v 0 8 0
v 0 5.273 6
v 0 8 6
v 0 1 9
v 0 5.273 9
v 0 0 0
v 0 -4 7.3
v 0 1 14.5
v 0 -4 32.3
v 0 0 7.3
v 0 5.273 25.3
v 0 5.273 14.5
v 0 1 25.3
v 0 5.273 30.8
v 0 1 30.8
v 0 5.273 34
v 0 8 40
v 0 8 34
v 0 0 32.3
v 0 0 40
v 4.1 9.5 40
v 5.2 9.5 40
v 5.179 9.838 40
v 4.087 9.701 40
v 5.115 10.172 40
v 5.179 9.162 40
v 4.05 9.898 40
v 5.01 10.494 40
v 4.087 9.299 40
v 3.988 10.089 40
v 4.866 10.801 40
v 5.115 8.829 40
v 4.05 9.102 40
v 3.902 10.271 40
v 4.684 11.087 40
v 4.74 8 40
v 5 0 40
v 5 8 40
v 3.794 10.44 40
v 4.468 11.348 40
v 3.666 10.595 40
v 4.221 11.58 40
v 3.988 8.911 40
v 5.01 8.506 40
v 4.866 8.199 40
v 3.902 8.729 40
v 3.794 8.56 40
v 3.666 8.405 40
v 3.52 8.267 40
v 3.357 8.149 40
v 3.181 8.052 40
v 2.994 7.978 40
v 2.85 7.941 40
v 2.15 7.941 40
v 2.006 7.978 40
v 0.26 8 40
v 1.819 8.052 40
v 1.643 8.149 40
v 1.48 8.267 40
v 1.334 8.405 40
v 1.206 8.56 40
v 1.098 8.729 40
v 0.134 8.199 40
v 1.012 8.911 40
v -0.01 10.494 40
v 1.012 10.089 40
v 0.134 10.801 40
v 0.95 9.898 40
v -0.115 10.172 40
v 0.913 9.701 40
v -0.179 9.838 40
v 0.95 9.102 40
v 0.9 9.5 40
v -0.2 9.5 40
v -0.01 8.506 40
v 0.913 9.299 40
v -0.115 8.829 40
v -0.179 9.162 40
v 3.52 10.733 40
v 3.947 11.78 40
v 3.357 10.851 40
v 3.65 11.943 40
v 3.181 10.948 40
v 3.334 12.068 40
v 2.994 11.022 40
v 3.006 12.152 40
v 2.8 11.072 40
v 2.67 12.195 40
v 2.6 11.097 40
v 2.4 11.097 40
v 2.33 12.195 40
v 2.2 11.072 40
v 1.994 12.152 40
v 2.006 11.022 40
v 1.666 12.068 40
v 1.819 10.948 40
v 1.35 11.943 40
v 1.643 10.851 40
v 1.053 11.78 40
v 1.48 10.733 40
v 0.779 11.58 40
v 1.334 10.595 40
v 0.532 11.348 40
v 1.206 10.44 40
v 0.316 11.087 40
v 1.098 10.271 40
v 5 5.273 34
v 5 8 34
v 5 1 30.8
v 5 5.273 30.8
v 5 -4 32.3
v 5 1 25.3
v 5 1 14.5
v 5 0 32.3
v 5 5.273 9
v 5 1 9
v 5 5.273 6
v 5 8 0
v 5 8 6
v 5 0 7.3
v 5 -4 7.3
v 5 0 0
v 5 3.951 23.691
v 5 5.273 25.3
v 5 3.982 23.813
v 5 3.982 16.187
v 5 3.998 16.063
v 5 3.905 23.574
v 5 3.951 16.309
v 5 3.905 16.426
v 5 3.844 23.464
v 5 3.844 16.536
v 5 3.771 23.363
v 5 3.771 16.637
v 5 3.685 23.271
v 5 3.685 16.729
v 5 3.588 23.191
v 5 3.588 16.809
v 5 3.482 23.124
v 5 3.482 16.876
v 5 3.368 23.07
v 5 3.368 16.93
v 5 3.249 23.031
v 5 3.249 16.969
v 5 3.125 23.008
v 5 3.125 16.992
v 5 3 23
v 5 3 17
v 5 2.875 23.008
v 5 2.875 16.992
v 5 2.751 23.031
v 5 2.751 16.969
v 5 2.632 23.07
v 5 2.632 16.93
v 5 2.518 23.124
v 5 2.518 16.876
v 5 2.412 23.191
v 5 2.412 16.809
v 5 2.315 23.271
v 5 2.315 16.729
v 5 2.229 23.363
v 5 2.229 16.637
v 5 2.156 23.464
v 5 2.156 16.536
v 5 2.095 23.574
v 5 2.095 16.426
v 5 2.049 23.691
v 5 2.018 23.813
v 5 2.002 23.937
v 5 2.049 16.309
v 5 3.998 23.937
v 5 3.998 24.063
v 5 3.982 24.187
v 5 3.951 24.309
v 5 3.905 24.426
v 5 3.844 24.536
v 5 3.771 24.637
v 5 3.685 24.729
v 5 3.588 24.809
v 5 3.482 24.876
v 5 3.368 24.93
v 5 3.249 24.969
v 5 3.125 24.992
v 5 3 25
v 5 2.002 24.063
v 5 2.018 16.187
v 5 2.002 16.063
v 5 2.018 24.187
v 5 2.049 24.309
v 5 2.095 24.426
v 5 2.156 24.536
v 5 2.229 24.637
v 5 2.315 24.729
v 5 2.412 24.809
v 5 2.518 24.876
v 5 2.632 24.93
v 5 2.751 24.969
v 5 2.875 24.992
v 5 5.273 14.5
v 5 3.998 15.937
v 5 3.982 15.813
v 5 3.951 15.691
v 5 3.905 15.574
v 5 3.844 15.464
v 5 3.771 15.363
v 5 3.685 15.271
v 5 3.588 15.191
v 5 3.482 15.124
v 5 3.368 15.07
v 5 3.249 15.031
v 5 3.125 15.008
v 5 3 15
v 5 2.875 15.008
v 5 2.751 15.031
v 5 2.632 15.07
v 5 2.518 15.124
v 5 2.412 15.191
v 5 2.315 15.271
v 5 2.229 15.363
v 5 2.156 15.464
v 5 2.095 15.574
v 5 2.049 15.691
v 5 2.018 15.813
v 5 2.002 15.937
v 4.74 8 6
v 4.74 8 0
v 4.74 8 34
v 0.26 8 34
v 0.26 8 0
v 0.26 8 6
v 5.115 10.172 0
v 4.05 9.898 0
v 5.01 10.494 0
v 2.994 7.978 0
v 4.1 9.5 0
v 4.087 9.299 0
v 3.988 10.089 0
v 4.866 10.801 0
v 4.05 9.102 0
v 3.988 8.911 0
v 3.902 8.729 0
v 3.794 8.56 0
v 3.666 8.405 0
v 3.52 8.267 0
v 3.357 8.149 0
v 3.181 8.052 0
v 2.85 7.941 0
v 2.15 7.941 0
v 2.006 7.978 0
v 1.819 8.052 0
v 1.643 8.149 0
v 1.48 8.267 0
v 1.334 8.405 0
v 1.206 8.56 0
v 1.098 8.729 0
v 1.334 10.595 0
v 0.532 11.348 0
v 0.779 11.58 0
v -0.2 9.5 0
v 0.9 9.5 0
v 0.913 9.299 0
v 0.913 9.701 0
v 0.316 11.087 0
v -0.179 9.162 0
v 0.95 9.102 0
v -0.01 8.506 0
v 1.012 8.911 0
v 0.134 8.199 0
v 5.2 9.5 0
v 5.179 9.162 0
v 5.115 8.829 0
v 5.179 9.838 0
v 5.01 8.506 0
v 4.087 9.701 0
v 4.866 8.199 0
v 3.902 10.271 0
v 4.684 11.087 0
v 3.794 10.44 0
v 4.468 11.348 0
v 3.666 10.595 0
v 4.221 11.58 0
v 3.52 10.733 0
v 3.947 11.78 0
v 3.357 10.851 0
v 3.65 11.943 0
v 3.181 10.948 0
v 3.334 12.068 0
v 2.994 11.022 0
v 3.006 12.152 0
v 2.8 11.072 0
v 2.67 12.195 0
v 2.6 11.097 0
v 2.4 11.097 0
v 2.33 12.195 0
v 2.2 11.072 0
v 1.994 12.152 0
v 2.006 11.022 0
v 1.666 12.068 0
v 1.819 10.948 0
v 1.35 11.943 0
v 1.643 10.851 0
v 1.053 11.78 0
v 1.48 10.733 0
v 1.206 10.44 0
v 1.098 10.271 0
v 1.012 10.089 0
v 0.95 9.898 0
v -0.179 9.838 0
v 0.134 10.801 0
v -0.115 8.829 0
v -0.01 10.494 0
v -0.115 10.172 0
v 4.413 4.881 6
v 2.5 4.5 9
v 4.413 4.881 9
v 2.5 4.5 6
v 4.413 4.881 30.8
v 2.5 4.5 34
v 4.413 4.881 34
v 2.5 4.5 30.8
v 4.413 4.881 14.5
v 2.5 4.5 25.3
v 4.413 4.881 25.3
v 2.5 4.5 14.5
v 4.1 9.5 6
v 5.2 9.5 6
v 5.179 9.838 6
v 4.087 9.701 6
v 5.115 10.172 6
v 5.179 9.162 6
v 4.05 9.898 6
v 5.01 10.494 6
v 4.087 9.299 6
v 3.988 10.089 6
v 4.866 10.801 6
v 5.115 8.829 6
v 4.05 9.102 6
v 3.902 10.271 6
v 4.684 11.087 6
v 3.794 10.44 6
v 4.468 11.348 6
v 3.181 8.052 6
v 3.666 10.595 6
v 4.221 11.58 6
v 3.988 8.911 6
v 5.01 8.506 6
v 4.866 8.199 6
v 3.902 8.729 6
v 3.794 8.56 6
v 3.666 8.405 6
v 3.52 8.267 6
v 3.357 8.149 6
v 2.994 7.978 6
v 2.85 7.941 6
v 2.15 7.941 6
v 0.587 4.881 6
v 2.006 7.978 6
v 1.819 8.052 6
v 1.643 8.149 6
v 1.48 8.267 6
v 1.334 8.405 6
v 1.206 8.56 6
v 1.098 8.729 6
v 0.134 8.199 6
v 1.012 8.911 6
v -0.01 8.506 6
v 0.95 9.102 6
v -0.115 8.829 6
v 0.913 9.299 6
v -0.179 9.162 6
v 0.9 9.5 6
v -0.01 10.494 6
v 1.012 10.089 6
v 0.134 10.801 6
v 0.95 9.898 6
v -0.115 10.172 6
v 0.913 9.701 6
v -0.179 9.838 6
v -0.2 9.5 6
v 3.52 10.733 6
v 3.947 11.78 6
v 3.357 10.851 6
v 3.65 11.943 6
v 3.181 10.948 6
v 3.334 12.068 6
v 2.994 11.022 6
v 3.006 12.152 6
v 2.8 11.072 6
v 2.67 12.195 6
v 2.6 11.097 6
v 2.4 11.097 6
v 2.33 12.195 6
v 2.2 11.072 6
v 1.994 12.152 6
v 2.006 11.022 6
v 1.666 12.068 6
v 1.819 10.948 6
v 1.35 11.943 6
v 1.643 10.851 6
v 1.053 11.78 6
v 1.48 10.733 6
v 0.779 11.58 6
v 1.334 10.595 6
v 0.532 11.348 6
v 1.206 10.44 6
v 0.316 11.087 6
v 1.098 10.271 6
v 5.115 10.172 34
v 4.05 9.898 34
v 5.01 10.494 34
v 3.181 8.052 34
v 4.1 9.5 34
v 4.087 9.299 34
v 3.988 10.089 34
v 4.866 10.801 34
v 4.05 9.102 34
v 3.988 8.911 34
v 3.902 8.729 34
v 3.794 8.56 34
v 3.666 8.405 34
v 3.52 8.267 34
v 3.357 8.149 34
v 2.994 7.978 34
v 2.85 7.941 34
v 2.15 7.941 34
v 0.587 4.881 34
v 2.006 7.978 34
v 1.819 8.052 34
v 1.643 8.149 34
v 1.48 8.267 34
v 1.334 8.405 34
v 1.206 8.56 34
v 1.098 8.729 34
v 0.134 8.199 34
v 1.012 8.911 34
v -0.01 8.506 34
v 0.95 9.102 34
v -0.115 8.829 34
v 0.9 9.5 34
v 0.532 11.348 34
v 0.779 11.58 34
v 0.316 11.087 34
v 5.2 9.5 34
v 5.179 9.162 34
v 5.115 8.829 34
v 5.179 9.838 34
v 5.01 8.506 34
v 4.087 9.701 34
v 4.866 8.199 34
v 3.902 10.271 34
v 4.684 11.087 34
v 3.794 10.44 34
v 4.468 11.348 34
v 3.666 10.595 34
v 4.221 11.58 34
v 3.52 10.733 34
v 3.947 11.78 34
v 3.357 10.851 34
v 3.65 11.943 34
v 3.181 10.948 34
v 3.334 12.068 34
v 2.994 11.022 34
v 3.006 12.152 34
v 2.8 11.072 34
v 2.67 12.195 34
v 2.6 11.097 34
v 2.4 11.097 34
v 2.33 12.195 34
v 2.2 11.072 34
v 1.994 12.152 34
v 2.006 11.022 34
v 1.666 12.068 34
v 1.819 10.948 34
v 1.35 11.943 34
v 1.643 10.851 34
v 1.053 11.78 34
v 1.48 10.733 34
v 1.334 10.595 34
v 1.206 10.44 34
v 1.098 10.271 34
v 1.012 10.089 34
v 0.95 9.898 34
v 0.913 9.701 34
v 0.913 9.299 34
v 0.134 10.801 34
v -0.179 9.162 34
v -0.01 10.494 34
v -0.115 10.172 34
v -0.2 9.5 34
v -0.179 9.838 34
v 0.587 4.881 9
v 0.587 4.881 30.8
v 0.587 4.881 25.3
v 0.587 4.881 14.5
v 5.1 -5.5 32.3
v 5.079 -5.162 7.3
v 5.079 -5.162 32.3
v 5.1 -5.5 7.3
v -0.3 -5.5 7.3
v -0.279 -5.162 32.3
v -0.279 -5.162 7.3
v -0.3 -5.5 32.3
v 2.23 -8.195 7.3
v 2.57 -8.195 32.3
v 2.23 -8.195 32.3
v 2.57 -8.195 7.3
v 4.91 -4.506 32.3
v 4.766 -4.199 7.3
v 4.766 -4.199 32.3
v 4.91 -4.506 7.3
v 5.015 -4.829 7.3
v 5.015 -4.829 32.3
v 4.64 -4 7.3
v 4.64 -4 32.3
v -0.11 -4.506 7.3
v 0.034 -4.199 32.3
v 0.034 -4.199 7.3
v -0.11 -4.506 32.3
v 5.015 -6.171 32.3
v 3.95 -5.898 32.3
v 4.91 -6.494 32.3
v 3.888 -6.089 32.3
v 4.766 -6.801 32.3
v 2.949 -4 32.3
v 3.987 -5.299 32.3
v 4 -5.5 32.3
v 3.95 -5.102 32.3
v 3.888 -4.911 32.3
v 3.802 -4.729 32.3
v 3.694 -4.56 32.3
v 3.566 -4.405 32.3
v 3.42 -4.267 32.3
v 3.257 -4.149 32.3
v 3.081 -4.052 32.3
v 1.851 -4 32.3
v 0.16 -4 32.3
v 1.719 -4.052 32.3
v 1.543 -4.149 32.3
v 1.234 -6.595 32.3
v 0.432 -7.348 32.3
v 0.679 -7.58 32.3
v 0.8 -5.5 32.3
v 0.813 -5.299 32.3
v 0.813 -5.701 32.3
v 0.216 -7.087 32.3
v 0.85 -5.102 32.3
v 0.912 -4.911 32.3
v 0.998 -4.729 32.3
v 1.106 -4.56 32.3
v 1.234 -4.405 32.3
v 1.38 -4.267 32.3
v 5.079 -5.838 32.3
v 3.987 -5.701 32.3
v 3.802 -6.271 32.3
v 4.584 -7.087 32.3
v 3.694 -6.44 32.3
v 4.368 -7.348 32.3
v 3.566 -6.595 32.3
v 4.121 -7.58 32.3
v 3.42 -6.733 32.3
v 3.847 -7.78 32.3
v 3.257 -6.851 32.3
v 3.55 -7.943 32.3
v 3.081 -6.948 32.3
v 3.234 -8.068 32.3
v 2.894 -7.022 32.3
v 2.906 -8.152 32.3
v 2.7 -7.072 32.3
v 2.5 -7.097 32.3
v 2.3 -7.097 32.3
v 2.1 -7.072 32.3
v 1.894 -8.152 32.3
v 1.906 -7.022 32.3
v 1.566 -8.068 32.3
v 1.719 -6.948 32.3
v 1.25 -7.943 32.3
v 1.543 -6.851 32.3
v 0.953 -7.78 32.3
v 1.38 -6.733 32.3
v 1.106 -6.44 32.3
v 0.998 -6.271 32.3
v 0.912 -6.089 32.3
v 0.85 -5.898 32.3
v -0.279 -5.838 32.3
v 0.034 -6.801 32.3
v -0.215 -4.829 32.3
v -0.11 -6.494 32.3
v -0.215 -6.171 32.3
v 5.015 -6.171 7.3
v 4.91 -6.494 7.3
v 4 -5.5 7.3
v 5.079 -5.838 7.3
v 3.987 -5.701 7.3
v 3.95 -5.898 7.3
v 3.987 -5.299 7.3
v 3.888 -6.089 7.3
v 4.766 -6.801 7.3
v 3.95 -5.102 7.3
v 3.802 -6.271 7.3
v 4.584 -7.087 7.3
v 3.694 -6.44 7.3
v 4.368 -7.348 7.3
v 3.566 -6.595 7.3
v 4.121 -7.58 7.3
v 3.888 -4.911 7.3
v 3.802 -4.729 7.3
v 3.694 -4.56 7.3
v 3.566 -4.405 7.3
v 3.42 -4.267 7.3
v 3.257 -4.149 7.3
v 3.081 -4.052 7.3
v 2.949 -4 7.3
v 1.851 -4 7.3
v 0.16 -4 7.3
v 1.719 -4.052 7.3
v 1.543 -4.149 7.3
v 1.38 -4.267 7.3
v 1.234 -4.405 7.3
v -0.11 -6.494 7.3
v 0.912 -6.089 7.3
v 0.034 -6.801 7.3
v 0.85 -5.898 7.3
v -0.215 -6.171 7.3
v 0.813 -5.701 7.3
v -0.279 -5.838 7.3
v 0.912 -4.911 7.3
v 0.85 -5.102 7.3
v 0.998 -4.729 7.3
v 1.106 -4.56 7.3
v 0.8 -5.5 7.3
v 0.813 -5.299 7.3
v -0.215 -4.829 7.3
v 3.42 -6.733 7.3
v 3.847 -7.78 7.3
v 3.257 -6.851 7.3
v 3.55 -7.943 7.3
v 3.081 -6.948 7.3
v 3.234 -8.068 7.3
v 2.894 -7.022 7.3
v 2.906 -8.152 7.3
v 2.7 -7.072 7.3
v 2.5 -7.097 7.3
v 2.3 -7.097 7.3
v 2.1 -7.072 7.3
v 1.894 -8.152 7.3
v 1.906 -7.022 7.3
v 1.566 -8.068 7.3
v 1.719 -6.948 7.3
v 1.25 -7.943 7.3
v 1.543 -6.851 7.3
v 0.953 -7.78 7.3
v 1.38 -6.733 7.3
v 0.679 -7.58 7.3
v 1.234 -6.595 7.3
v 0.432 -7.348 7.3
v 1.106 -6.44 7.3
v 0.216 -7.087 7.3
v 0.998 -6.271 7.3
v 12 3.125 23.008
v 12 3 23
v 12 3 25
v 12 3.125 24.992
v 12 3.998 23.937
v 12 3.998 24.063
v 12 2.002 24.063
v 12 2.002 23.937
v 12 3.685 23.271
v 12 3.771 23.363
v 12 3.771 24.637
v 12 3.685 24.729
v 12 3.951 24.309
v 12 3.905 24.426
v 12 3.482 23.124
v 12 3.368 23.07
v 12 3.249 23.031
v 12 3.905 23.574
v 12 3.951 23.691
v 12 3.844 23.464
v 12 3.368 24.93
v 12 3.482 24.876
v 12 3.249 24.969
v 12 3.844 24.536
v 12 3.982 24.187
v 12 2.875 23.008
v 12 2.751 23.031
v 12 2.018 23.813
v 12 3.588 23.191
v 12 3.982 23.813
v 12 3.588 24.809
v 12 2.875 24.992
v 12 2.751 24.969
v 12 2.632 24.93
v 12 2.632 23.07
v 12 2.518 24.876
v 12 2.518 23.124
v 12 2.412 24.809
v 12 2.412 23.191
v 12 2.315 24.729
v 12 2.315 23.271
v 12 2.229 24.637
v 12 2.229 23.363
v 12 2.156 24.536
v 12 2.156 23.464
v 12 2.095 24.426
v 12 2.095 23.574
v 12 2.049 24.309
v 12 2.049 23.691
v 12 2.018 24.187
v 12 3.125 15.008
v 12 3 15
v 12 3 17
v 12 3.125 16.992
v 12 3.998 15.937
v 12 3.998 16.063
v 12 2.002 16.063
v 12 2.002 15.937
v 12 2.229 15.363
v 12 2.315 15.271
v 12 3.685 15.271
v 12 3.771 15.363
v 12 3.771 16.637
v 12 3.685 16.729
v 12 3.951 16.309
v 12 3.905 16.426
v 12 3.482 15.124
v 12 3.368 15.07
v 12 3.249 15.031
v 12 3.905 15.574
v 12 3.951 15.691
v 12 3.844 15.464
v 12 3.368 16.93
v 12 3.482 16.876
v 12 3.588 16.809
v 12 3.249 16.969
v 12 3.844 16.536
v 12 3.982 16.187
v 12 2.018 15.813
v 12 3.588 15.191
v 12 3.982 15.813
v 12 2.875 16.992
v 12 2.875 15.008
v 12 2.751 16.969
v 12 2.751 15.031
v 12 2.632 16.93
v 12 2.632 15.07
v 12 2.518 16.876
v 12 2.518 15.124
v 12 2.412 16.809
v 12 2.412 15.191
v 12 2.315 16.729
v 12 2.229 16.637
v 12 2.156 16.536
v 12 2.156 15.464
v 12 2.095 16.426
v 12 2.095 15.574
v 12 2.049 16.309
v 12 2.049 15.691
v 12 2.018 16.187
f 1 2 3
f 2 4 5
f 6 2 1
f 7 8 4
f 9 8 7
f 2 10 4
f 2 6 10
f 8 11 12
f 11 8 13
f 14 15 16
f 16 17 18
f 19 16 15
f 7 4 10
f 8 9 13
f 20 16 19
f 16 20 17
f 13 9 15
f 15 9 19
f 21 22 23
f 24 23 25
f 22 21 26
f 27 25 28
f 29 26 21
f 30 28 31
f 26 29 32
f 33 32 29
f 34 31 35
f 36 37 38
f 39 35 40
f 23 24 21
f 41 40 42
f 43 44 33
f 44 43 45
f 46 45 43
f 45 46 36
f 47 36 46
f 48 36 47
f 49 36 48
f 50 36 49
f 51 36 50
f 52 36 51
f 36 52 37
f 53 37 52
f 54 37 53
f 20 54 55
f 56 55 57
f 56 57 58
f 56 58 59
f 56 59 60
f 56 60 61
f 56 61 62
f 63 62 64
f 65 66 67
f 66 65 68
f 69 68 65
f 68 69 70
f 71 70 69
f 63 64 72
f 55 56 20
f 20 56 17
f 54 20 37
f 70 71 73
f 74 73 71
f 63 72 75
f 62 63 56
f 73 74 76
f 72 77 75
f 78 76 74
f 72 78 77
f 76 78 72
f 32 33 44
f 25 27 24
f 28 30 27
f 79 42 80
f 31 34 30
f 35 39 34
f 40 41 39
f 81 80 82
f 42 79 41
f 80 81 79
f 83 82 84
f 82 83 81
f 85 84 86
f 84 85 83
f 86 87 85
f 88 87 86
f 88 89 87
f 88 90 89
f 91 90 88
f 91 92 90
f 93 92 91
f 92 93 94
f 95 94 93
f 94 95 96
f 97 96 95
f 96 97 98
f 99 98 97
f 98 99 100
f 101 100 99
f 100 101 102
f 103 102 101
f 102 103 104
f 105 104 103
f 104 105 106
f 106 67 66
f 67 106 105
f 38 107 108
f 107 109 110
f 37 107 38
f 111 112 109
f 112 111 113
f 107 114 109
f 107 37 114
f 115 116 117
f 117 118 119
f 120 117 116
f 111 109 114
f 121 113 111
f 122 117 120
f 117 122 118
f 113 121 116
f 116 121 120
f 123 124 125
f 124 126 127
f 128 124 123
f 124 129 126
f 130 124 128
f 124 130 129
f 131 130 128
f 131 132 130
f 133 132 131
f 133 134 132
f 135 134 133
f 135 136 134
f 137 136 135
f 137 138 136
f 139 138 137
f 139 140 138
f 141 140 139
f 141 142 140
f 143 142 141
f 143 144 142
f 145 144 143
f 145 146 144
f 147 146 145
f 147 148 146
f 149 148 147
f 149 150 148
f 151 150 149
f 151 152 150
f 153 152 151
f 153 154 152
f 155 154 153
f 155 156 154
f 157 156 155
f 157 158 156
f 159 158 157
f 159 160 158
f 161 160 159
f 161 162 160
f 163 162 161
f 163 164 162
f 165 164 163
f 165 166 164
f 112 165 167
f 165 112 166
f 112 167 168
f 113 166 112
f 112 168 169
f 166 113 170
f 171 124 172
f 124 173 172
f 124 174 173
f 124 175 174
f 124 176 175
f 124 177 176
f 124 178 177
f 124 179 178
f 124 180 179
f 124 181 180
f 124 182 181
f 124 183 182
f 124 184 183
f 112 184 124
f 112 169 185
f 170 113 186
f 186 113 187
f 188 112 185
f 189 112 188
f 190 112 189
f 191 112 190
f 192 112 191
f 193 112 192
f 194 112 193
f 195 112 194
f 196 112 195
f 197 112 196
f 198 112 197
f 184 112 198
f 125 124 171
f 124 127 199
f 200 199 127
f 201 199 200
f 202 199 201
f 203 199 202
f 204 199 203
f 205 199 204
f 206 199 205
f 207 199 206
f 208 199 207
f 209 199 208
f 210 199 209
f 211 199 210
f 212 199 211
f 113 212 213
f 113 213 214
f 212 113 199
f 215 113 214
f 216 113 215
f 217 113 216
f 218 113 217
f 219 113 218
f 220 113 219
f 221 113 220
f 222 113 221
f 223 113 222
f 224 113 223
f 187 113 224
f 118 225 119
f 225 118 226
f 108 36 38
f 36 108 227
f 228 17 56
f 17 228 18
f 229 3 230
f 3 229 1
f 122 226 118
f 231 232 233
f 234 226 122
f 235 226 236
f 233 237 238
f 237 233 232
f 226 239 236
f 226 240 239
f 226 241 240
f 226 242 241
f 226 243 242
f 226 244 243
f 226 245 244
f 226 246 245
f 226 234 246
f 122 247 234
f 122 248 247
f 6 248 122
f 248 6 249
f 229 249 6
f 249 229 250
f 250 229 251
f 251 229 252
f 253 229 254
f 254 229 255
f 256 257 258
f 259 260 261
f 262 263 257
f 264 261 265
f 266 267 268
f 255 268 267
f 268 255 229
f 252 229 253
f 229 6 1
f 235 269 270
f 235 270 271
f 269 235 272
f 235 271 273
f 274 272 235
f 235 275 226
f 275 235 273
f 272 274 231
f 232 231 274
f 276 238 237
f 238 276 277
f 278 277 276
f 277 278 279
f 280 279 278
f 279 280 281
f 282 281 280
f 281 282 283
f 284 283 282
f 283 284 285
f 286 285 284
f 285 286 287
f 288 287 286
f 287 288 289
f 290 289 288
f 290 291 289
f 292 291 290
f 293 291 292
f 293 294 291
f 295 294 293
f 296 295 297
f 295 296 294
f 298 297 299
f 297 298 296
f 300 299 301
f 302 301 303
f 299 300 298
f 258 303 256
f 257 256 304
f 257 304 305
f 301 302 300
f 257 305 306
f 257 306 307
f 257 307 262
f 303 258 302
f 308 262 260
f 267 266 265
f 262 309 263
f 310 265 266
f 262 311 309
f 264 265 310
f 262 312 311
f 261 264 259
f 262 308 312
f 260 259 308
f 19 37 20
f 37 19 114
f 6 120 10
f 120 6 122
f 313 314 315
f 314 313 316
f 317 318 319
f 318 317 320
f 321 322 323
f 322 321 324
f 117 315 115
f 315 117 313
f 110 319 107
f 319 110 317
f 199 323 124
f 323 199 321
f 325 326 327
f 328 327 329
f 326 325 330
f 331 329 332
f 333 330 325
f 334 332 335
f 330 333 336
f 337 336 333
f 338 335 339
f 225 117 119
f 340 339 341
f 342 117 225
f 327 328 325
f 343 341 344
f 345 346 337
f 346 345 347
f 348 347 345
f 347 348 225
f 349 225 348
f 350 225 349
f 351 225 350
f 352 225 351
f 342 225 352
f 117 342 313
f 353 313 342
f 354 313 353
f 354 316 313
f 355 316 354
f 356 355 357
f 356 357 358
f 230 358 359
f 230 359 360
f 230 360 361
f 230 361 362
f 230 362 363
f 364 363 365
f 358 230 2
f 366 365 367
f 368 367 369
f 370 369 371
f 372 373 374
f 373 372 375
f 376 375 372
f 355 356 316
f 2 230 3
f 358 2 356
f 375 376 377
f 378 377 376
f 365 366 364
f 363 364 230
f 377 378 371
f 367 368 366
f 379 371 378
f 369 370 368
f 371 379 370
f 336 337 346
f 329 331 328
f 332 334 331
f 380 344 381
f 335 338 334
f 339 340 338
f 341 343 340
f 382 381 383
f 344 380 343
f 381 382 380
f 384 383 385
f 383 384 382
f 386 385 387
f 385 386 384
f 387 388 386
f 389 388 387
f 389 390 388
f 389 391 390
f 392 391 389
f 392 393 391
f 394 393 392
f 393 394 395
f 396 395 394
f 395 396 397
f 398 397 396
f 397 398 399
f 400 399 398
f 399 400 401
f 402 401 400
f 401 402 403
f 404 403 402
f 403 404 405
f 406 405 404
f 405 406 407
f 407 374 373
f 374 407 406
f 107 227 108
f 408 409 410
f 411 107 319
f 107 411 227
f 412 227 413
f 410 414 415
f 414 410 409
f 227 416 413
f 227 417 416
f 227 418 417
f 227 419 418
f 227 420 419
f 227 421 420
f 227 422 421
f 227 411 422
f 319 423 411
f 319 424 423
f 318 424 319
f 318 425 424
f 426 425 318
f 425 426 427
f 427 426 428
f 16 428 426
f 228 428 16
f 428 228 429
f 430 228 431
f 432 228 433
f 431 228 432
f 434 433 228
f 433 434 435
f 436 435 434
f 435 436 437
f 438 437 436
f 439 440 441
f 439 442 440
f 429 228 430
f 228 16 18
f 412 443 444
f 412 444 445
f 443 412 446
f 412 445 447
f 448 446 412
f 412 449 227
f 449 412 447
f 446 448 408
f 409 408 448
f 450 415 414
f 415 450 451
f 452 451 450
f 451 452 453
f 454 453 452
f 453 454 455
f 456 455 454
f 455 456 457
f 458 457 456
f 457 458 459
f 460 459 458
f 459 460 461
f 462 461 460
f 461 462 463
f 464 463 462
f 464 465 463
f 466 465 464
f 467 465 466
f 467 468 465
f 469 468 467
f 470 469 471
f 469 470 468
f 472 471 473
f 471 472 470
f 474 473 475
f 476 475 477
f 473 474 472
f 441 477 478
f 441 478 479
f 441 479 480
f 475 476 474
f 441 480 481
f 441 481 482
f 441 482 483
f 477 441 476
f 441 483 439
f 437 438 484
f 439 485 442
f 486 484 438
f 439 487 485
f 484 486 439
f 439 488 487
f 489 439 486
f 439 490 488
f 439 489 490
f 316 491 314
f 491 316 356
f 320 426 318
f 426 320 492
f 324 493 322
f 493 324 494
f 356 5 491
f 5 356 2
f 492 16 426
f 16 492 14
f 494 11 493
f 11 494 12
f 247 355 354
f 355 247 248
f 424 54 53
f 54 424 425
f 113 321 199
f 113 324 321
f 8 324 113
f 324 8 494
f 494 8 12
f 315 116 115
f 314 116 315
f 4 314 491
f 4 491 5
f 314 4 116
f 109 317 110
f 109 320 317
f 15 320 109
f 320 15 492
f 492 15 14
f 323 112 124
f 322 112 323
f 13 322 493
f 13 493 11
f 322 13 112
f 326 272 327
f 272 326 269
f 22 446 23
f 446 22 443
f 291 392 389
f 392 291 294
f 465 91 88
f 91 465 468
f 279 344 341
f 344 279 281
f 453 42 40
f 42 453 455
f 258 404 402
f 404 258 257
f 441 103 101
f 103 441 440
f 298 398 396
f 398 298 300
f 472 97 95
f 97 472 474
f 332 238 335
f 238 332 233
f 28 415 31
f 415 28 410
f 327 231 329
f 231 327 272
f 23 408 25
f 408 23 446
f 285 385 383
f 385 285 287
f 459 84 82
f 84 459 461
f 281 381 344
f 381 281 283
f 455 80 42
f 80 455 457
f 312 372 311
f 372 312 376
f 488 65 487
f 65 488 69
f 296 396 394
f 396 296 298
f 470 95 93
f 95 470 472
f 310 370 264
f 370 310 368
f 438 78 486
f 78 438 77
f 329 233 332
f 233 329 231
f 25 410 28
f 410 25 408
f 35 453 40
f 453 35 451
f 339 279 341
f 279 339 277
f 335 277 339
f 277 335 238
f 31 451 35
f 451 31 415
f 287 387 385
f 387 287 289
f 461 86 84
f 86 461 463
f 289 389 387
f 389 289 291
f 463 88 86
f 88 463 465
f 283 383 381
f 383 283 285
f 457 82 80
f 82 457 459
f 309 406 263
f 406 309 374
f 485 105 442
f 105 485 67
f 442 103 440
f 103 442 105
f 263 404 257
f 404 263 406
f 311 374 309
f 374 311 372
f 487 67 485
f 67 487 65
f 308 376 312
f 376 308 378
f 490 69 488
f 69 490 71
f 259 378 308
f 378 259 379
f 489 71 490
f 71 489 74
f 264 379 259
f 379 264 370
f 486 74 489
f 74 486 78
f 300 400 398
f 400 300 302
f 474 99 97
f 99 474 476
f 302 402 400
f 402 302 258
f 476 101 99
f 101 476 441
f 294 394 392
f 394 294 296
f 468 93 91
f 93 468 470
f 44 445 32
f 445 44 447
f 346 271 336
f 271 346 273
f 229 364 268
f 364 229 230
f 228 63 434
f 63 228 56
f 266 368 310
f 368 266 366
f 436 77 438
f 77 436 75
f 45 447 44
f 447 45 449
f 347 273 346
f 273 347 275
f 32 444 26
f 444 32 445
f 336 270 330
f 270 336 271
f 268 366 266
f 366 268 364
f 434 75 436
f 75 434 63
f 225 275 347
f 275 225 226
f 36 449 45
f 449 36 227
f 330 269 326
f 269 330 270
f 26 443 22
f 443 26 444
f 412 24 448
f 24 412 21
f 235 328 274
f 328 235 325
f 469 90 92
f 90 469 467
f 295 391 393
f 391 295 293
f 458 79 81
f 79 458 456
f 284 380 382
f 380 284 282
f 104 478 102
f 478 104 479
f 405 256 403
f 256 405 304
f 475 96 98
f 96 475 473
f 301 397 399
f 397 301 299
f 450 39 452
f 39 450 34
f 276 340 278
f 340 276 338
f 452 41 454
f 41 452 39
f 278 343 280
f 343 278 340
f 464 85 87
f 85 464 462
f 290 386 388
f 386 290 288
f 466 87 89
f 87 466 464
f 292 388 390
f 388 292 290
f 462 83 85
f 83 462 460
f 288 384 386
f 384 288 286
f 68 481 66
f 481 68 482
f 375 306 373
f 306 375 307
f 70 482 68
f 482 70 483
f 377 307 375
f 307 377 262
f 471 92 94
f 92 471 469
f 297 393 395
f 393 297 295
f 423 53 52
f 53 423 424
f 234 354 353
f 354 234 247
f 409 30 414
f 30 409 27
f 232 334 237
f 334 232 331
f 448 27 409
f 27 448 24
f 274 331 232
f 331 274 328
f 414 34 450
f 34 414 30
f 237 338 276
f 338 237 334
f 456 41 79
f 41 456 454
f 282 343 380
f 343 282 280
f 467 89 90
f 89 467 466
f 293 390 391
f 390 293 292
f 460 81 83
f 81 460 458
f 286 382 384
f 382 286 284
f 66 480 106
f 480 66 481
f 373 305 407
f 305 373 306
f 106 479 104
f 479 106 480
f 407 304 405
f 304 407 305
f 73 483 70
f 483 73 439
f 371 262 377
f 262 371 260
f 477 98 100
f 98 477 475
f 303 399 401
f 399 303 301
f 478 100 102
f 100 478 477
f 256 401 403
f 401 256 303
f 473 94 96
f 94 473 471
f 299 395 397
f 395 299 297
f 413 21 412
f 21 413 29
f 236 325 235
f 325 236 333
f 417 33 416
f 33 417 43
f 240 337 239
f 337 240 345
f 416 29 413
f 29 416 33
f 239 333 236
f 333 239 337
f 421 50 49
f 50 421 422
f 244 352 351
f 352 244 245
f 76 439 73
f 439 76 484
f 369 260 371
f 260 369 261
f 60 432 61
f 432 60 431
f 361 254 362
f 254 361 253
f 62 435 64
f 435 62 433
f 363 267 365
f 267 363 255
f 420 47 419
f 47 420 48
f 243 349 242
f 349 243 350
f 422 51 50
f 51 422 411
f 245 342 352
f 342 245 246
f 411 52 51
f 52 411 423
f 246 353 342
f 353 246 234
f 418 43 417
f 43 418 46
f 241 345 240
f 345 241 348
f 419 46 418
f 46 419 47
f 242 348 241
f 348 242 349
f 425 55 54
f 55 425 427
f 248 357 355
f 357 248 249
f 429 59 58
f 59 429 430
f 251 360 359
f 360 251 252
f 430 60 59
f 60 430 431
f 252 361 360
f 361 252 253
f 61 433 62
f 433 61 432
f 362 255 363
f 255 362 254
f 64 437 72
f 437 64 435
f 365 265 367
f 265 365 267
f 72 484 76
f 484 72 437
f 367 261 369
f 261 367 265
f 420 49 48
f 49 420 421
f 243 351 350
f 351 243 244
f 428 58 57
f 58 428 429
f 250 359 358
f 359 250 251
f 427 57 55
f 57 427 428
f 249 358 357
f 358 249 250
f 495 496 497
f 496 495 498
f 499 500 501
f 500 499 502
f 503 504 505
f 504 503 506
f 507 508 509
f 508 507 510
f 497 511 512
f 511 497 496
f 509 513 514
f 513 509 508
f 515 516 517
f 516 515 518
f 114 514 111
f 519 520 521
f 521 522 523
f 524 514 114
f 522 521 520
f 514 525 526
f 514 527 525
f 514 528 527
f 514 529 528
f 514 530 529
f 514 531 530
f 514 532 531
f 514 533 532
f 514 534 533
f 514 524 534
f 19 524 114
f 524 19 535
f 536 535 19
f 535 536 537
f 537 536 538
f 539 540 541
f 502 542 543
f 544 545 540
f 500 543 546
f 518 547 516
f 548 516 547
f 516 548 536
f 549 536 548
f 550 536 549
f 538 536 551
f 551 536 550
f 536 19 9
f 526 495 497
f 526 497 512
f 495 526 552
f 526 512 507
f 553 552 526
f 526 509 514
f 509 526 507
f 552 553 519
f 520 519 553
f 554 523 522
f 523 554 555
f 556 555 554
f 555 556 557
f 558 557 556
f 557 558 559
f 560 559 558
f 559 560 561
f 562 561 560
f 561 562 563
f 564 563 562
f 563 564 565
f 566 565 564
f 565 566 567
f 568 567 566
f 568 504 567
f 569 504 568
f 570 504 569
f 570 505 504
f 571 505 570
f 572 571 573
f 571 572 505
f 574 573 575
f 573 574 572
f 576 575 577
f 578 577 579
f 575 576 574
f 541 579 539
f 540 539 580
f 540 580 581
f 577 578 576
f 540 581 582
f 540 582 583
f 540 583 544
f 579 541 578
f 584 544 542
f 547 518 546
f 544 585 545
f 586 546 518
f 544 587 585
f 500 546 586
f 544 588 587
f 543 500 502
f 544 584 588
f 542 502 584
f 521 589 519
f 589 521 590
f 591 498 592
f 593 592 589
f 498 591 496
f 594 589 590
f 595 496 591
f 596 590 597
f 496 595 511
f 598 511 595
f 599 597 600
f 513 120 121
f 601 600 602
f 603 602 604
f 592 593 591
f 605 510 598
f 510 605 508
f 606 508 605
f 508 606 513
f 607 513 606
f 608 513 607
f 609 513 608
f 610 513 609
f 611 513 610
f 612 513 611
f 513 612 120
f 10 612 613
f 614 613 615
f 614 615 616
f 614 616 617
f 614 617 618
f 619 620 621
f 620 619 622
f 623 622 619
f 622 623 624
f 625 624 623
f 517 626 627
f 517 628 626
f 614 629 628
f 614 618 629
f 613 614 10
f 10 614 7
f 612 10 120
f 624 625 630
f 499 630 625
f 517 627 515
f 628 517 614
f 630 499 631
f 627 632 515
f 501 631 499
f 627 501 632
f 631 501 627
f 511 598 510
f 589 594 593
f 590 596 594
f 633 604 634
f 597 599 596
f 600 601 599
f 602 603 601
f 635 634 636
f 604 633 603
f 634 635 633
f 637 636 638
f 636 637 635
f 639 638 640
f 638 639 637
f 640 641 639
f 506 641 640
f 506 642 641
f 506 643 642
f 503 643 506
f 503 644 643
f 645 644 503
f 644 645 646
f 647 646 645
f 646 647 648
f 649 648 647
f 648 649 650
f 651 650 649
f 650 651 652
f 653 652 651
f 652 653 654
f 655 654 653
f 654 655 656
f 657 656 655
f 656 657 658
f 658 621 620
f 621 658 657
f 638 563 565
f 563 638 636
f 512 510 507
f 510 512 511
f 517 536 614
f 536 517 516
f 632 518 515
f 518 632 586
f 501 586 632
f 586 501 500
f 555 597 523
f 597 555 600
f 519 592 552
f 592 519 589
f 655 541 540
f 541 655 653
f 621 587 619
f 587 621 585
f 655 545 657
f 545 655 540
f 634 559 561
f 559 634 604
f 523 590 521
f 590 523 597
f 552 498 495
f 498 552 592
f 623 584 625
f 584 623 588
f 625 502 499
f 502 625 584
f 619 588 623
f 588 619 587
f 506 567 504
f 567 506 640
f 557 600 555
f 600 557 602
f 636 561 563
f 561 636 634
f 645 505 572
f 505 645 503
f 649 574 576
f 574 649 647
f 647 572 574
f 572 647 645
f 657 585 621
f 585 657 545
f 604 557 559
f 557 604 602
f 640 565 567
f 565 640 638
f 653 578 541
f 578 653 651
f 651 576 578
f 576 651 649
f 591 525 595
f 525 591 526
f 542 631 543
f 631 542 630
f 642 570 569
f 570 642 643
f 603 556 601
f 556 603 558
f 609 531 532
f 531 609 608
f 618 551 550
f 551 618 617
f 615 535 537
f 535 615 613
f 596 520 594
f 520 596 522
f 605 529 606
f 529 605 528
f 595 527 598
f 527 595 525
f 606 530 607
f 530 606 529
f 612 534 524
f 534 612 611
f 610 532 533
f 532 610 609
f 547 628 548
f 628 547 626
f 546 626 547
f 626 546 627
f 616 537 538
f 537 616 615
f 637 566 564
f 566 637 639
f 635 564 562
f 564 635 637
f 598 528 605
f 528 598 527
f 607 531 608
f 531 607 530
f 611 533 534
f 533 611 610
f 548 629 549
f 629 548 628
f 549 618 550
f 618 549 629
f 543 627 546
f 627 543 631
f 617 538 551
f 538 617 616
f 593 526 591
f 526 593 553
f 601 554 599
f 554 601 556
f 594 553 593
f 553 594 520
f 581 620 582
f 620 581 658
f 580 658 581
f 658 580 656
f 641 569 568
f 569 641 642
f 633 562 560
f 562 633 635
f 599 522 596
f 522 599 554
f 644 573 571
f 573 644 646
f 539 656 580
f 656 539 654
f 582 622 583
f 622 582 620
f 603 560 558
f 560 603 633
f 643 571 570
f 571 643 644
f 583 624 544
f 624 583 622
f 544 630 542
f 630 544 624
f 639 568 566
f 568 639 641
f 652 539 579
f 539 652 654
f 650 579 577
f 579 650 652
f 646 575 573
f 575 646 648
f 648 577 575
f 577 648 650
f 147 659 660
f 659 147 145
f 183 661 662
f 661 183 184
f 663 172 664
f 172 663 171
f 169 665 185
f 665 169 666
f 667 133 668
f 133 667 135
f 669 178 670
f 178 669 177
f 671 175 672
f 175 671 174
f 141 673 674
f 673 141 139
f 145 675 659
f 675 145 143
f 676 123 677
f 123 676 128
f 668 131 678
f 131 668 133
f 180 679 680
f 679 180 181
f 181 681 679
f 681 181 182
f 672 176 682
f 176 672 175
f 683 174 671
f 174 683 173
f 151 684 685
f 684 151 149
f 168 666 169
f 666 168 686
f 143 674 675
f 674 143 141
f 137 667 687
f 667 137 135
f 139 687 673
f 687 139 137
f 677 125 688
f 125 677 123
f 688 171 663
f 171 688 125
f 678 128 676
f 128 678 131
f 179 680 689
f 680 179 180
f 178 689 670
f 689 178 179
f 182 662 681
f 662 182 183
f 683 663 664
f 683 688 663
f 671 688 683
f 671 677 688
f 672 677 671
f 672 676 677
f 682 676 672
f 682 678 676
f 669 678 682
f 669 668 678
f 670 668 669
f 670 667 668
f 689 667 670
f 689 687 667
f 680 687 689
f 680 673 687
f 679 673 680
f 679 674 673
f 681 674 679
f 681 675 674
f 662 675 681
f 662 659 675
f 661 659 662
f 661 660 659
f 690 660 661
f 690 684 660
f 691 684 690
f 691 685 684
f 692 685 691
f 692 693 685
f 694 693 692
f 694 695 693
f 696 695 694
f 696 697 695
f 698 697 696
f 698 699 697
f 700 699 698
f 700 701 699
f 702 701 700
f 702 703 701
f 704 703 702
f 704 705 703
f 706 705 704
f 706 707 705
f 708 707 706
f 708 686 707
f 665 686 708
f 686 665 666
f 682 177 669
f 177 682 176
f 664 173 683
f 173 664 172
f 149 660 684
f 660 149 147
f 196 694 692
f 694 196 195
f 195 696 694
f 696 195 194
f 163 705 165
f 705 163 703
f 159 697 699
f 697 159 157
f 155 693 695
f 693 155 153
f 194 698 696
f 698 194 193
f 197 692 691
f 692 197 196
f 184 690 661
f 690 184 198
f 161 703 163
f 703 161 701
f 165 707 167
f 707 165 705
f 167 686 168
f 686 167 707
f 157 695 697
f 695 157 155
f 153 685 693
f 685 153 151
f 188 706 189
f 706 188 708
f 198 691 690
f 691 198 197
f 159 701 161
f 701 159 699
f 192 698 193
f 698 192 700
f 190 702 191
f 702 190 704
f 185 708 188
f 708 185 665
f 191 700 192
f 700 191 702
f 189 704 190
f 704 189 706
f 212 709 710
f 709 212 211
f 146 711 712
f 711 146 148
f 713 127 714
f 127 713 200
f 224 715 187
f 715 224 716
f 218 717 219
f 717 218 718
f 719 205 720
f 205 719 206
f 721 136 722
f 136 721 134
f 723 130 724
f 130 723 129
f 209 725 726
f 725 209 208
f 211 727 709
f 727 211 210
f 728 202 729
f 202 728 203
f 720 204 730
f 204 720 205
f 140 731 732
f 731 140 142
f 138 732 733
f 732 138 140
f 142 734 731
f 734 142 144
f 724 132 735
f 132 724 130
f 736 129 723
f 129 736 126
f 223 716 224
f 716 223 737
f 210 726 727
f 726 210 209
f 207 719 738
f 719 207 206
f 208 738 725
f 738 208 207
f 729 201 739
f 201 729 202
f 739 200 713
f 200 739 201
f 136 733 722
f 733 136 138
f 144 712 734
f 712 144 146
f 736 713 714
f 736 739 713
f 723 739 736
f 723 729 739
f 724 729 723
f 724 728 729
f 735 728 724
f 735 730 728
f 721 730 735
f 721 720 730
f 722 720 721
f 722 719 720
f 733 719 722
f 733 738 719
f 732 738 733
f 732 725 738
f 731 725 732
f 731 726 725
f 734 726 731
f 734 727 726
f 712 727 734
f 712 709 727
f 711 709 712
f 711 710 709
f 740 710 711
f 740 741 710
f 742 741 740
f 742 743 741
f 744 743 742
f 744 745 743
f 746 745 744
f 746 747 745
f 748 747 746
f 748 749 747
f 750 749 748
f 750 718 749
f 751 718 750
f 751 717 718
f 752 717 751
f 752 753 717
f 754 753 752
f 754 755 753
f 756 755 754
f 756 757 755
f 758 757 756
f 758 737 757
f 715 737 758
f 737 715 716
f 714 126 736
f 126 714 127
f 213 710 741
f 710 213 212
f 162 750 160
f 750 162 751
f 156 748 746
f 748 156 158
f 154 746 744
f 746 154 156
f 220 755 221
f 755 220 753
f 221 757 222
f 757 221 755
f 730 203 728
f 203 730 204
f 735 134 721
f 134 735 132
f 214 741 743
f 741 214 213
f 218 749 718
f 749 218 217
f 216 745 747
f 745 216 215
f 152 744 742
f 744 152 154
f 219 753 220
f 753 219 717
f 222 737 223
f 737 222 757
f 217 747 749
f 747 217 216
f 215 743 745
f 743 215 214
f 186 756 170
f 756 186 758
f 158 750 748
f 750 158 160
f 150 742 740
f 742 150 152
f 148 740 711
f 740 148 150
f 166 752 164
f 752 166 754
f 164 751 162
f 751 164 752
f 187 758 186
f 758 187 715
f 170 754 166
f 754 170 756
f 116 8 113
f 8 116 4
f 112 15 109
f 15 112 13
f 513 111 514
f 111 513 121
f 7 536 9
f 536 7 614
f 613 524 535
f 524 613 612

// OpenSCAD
difference(){
    color("red")cube([5, 8, 40]);
     translate([2.5,12,-1]){
        cylinder(h=100, r=1.6, $fn=50);
    }
    translate([2.5,9.5,6]){
        cylinder(h=28   , r=5);
    }
    translate([2.5,9.5,-1]){
        cylinder(h=100, r=1.8);
    }
    translate([-2,0, 9]){
        cube([10,6,5.5]);
        }
    translate([-2,0, 25.3]){
        cube([10,6,5.5]);
        }

}    

difference(){
    translate([2.5,9.5, 0]){
        color("pink")cylinder(h=40, r=2.7, $fn=50);

    }
    translate([2.5,9.5,-1]){
        cylinder(h=100, r=1.6, $fn=50);
    }
    translate([2.5,7.5,6]){
        cylinder(h=28, r=6);
    }
    
}


translate([0, -4, 7.3]){
     color("yellow")cube([5,5,25]);
}
    
   

    
//Denne laver den grønne cylinder
difference(){
    translate([2.4, -5.5, 7.3]){
    color("green") cylinder(h=25, r=2.7, $fn=50);
    }
    translate([2.4,-5.5,7.3]){
        cylinder(h=100, r=1.6, $fn=50);
    }
    

}

rotate([0,90,0]){
    translate([-24,3,5]){
        color("purple")cylinder(h=7, r=1, $fn=50);
    }
    translate([-16,3,5]){
        color("purple")cylinder(h=7, r=1, $fn=50);
    }

}


    


    
